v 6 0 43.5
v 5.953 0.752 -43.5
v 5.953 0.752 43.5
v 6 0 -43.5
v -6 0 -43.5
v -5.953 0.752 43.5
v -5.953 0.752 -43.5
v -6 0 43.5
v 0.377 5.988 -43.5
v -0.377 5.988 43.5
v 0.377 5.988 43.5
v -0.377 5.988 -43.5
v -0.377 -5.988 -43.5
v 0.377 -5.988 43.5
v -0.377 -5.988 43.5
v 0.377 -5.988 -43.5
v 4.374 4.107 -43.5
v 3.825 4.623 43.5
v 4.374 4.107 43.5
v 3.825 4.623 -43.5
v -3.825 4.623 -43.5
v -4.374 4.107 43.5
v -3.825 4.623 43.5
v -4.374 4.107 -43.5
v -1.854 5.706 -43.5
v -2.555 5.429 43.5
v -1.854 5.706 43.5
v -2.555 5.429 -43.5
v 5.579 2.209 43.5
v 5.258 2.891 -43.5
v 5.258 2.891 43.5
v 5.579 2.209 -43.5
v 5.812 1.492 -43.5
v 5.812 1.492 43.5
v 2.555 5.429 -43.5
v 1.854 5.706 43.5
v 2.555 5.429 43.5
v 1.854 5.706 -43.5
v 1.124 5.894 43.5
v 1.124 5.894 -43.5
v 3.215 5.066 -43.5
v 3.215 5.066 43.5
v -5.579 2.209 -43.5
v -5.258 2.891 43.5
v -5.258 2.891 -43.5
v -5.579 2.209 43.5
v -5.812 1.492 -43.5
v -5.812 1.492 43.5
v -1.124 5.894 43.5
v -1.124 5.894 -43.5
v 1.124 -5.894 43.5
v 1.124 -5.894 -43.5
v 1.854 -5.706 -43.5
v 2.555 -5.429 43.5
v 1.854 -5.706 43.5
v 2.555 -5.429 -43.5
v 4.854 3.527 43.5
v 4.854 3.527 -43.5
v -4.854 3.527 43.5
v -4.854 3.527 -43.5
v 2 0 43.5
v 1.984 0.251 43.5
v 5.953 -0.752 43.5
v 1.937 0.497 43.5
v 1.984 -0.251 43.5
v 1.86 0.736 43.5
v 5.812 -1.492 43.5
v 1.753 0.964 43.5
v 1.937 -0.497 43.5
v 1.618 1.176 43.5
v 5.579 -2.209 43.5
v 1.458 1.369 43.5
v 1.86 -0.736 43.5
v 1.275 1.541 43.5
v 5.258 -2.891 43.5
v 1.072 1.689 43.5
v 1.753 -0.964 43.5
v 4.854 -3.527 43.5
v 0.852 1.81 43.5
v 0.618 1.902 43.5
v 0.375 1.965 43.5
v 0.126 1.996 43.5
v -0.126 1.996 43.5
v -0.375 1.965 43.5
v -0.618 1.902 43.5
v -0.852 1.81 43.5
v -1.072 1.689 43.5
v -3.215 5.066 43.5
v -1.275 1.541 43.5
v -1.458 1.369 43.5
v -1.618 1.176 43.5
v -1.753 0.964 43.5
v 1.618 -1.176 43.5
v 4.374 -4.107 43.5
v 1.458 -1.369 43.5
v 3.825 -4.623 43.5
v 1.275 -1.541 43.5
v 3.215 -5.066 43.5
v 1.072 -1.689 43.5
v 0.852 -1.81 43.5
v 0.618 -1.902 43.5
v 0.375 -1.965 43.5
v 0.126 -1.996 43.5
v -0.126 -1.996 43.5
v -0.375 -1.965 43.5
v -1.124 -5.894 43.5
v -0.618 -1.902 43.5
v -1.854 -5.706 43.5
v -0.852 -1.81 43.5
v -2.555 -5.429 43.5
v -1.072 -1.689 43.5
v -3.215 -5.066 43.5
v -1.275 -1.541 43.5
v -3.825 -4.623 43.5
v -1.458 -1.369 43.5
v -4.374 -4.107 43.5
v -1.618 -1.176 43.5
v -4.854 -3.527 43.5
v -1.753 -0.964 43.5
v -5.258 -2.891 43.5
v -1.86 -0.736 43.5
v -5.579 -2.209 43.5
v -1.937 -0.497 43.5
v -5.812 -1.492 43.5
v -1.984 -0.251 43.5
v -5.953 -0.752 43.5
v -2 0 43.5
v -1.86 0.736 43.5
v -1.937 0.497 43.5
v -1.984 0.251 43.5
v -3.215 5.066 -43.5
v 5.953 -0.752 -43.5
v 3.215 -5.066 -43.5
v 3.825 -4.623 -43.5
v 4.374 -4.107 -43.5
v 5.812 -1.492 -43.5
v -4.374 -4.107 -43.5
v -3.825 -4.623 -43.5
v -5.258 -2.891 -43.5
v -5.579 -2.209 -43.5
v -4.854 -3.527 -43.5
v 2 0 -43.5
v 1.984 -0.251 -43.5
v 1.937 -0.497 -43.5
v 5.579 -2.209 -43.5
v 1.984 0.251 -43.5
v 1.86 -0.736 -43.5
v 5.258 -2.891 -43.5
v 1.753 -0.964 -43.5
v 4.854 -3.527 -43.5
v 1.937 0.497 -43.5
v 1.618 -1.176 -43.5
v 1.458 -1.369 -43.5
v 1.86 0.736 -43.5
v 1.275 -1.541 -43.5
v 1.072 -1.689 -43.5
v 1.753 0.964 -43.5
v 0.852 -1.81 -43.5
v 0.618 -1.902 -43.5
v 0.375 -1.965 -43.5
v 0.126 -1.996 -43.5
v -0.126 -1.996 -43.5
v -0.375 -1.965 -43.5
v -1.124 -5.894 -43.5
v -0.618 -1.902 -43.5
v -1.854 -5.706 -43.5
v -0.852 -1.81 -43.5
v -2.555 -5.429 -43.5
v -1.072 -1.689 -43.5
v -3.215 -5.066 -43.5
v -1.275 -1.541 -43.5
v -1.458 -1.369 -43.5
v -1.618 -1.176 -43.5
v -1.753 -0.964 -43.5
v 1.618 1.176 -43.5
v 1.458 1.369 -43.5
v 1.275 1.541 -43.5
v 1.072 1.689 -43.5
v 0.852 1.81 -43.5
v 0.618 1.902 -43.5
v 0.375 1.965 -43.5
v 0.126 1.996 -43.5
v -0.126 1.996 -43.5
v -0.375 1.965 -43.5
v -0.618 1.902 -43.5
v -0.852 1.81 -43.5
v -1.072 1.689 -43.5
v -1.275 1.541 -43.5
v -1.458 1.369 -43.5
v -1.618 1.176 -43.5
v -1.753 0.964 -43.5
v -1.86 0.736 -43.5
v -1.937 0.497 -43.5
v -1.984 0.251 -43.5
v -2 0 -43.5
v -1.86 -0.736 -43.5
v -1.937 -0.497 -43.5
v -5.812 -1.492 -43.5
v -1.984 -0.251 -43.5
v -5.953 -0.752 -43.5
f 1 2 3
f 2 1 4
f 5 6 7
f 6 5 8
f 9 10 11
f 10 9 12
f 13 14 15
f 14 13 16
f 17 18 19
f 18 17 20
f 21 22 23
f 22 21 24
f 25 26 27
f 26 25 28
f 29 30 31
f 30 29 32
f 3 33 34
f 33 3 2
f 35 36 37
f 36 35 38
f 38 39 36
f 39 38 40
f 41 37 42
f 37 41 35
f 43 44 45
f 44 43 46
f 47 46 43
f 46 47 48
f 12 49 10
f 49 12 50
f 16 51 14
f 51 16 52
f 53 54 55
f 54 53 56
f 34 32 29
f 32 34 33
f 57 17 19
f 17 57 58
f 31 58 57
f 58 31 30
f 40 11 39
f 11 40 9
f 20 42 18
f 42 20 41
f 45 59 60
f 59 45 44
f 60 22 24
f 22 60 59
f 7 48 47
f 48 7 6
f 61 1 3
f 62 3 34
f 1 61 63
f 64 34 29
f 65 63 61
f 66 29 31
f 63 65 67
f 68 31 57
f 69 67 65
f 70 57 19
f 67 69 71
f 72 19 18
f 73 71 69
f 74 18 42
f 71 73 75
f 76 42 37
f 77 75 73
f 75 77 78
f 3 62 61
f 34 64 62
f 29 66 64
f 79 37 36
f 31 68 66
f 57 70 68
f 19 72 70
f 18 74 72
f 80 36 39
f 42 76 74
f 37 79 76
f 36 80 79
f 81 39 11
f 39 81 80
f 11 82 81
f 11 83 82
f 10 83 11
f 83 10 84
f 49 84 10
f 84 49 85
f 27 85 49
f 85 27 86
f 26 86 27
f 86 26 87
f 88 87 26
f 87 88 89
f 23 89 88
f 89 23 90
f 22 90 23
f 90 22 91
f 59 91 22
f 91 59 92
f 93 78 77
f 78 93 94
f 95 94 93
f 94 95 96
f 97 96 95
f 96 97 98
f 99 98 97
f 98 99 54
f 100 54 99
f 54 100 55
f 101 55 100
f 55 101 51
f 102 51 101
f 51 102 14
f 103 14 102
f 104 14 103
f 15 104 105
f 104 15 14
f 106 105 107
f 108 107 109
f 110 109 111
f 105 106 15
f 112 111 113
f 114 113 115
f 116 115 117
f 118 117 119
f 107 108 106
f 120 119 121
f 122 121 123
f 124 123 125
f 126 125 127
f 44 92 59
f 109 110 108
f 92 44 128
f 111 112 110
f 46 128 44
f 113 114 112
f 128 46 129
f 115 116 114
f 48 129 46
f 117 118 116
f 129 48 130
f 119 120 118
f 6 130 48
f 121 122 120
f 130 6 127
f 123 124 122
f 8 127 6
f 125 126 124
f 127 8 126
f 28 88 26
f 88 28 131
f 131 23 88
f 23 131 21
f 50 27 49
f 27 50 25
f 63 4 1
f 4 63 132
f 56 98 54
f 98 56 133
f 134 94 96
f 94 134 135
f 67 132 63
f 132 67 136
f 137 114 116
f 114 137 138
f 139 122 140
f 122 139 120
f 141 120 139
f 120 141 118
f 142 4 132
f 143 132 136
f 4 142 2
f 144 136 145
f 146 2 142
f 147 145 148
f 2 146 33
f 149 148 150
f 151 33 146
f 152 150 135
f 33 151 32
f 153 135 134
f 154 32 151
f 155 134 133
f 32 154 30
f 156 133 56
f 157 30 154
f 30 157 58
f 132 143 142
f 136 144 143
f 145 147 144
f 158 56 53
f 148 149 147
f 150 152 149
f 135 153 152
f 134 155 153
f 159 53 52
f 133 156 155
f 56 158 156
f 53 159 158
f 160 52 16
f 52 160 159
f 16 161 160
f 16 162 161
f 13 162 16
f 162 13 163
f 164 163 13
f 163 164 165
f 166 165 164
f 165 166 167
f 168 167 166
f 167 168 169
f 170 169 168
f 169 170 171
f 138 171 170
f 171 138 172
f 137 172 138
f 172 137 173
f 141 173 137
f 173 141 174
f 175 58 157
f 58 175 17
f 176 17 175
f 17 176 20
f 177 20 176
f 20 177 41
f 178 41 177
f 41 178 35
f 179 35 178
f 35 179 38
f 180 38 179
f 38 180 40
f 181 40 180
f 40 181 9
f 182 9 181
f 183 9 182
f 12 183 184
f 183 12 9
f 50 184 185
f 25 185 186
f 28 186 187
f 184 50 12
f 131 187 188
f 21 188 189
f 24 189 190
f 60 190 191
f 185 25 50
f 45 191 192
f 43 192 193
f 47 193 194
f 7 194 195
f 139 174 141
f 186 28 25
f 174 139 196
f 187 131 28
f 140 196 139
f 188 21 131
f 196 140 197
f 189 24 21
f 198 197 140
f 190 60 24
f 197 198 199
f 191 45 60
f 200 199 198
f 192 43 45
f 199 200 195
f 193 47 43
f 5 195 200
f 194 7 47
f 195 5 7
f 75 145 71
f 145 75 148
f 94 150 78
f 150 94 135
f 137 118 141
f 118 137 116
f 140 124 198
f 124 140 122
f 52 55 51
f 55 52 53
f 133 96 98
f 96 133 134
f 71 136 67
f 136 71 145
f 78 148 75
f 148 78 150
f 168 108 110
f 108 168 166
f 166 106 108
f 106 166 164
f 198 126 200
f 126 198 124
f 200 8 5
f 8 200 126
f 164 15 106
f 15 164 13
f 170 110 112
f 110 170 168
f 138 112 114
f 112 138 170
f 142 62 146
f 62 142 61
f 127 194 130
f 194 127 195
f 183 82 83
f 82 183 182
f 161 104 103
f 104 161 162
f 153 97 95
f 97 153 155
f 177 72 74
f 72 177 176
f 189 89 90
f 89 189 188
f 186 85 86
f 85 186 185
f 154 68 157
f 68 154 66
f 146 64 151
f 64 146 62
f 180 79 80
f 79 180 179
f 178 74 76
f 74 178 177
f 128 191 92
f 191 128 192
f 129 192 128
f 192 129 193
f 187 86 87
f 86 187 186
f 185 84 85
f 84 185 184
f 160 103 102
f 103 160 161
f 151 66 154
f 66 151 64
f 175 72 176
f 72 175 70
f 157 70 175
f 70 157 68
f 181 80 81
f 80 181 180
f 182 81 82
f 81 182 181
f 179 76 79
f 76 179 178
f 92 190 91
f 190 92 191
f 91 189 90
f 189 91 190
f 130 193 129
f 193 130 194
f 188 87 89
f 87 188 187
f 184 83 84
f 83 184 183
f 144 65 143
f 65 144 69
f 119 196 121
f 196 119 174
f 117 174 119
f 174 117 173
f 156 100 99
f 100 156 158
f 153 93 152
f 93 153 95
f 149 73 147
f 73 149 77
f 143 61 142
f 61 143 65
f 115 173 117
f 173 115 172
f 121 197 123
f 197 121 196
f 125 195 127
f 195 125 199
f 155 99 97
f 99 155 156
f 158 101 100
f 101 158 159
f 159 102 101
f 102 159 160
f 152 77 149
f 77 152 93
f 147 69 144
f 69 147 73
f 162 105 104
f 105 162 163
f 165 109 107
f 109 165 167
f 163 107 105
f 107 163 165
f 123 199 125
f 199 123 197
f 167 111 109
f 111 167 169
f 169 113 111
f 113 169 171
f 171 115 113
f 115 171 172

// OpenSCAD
$fn = 50;


difference() {
	union() {
		translate(v = [0, 0, -43.5000000000]) {
			cylinder(h = 87, r = 6.0000000000);
		}
	}
	union() {
		translate(v = [0, 0, -100.0000000000]) {
			cylinder(h = 200, r = 2);
		}
	}
}
